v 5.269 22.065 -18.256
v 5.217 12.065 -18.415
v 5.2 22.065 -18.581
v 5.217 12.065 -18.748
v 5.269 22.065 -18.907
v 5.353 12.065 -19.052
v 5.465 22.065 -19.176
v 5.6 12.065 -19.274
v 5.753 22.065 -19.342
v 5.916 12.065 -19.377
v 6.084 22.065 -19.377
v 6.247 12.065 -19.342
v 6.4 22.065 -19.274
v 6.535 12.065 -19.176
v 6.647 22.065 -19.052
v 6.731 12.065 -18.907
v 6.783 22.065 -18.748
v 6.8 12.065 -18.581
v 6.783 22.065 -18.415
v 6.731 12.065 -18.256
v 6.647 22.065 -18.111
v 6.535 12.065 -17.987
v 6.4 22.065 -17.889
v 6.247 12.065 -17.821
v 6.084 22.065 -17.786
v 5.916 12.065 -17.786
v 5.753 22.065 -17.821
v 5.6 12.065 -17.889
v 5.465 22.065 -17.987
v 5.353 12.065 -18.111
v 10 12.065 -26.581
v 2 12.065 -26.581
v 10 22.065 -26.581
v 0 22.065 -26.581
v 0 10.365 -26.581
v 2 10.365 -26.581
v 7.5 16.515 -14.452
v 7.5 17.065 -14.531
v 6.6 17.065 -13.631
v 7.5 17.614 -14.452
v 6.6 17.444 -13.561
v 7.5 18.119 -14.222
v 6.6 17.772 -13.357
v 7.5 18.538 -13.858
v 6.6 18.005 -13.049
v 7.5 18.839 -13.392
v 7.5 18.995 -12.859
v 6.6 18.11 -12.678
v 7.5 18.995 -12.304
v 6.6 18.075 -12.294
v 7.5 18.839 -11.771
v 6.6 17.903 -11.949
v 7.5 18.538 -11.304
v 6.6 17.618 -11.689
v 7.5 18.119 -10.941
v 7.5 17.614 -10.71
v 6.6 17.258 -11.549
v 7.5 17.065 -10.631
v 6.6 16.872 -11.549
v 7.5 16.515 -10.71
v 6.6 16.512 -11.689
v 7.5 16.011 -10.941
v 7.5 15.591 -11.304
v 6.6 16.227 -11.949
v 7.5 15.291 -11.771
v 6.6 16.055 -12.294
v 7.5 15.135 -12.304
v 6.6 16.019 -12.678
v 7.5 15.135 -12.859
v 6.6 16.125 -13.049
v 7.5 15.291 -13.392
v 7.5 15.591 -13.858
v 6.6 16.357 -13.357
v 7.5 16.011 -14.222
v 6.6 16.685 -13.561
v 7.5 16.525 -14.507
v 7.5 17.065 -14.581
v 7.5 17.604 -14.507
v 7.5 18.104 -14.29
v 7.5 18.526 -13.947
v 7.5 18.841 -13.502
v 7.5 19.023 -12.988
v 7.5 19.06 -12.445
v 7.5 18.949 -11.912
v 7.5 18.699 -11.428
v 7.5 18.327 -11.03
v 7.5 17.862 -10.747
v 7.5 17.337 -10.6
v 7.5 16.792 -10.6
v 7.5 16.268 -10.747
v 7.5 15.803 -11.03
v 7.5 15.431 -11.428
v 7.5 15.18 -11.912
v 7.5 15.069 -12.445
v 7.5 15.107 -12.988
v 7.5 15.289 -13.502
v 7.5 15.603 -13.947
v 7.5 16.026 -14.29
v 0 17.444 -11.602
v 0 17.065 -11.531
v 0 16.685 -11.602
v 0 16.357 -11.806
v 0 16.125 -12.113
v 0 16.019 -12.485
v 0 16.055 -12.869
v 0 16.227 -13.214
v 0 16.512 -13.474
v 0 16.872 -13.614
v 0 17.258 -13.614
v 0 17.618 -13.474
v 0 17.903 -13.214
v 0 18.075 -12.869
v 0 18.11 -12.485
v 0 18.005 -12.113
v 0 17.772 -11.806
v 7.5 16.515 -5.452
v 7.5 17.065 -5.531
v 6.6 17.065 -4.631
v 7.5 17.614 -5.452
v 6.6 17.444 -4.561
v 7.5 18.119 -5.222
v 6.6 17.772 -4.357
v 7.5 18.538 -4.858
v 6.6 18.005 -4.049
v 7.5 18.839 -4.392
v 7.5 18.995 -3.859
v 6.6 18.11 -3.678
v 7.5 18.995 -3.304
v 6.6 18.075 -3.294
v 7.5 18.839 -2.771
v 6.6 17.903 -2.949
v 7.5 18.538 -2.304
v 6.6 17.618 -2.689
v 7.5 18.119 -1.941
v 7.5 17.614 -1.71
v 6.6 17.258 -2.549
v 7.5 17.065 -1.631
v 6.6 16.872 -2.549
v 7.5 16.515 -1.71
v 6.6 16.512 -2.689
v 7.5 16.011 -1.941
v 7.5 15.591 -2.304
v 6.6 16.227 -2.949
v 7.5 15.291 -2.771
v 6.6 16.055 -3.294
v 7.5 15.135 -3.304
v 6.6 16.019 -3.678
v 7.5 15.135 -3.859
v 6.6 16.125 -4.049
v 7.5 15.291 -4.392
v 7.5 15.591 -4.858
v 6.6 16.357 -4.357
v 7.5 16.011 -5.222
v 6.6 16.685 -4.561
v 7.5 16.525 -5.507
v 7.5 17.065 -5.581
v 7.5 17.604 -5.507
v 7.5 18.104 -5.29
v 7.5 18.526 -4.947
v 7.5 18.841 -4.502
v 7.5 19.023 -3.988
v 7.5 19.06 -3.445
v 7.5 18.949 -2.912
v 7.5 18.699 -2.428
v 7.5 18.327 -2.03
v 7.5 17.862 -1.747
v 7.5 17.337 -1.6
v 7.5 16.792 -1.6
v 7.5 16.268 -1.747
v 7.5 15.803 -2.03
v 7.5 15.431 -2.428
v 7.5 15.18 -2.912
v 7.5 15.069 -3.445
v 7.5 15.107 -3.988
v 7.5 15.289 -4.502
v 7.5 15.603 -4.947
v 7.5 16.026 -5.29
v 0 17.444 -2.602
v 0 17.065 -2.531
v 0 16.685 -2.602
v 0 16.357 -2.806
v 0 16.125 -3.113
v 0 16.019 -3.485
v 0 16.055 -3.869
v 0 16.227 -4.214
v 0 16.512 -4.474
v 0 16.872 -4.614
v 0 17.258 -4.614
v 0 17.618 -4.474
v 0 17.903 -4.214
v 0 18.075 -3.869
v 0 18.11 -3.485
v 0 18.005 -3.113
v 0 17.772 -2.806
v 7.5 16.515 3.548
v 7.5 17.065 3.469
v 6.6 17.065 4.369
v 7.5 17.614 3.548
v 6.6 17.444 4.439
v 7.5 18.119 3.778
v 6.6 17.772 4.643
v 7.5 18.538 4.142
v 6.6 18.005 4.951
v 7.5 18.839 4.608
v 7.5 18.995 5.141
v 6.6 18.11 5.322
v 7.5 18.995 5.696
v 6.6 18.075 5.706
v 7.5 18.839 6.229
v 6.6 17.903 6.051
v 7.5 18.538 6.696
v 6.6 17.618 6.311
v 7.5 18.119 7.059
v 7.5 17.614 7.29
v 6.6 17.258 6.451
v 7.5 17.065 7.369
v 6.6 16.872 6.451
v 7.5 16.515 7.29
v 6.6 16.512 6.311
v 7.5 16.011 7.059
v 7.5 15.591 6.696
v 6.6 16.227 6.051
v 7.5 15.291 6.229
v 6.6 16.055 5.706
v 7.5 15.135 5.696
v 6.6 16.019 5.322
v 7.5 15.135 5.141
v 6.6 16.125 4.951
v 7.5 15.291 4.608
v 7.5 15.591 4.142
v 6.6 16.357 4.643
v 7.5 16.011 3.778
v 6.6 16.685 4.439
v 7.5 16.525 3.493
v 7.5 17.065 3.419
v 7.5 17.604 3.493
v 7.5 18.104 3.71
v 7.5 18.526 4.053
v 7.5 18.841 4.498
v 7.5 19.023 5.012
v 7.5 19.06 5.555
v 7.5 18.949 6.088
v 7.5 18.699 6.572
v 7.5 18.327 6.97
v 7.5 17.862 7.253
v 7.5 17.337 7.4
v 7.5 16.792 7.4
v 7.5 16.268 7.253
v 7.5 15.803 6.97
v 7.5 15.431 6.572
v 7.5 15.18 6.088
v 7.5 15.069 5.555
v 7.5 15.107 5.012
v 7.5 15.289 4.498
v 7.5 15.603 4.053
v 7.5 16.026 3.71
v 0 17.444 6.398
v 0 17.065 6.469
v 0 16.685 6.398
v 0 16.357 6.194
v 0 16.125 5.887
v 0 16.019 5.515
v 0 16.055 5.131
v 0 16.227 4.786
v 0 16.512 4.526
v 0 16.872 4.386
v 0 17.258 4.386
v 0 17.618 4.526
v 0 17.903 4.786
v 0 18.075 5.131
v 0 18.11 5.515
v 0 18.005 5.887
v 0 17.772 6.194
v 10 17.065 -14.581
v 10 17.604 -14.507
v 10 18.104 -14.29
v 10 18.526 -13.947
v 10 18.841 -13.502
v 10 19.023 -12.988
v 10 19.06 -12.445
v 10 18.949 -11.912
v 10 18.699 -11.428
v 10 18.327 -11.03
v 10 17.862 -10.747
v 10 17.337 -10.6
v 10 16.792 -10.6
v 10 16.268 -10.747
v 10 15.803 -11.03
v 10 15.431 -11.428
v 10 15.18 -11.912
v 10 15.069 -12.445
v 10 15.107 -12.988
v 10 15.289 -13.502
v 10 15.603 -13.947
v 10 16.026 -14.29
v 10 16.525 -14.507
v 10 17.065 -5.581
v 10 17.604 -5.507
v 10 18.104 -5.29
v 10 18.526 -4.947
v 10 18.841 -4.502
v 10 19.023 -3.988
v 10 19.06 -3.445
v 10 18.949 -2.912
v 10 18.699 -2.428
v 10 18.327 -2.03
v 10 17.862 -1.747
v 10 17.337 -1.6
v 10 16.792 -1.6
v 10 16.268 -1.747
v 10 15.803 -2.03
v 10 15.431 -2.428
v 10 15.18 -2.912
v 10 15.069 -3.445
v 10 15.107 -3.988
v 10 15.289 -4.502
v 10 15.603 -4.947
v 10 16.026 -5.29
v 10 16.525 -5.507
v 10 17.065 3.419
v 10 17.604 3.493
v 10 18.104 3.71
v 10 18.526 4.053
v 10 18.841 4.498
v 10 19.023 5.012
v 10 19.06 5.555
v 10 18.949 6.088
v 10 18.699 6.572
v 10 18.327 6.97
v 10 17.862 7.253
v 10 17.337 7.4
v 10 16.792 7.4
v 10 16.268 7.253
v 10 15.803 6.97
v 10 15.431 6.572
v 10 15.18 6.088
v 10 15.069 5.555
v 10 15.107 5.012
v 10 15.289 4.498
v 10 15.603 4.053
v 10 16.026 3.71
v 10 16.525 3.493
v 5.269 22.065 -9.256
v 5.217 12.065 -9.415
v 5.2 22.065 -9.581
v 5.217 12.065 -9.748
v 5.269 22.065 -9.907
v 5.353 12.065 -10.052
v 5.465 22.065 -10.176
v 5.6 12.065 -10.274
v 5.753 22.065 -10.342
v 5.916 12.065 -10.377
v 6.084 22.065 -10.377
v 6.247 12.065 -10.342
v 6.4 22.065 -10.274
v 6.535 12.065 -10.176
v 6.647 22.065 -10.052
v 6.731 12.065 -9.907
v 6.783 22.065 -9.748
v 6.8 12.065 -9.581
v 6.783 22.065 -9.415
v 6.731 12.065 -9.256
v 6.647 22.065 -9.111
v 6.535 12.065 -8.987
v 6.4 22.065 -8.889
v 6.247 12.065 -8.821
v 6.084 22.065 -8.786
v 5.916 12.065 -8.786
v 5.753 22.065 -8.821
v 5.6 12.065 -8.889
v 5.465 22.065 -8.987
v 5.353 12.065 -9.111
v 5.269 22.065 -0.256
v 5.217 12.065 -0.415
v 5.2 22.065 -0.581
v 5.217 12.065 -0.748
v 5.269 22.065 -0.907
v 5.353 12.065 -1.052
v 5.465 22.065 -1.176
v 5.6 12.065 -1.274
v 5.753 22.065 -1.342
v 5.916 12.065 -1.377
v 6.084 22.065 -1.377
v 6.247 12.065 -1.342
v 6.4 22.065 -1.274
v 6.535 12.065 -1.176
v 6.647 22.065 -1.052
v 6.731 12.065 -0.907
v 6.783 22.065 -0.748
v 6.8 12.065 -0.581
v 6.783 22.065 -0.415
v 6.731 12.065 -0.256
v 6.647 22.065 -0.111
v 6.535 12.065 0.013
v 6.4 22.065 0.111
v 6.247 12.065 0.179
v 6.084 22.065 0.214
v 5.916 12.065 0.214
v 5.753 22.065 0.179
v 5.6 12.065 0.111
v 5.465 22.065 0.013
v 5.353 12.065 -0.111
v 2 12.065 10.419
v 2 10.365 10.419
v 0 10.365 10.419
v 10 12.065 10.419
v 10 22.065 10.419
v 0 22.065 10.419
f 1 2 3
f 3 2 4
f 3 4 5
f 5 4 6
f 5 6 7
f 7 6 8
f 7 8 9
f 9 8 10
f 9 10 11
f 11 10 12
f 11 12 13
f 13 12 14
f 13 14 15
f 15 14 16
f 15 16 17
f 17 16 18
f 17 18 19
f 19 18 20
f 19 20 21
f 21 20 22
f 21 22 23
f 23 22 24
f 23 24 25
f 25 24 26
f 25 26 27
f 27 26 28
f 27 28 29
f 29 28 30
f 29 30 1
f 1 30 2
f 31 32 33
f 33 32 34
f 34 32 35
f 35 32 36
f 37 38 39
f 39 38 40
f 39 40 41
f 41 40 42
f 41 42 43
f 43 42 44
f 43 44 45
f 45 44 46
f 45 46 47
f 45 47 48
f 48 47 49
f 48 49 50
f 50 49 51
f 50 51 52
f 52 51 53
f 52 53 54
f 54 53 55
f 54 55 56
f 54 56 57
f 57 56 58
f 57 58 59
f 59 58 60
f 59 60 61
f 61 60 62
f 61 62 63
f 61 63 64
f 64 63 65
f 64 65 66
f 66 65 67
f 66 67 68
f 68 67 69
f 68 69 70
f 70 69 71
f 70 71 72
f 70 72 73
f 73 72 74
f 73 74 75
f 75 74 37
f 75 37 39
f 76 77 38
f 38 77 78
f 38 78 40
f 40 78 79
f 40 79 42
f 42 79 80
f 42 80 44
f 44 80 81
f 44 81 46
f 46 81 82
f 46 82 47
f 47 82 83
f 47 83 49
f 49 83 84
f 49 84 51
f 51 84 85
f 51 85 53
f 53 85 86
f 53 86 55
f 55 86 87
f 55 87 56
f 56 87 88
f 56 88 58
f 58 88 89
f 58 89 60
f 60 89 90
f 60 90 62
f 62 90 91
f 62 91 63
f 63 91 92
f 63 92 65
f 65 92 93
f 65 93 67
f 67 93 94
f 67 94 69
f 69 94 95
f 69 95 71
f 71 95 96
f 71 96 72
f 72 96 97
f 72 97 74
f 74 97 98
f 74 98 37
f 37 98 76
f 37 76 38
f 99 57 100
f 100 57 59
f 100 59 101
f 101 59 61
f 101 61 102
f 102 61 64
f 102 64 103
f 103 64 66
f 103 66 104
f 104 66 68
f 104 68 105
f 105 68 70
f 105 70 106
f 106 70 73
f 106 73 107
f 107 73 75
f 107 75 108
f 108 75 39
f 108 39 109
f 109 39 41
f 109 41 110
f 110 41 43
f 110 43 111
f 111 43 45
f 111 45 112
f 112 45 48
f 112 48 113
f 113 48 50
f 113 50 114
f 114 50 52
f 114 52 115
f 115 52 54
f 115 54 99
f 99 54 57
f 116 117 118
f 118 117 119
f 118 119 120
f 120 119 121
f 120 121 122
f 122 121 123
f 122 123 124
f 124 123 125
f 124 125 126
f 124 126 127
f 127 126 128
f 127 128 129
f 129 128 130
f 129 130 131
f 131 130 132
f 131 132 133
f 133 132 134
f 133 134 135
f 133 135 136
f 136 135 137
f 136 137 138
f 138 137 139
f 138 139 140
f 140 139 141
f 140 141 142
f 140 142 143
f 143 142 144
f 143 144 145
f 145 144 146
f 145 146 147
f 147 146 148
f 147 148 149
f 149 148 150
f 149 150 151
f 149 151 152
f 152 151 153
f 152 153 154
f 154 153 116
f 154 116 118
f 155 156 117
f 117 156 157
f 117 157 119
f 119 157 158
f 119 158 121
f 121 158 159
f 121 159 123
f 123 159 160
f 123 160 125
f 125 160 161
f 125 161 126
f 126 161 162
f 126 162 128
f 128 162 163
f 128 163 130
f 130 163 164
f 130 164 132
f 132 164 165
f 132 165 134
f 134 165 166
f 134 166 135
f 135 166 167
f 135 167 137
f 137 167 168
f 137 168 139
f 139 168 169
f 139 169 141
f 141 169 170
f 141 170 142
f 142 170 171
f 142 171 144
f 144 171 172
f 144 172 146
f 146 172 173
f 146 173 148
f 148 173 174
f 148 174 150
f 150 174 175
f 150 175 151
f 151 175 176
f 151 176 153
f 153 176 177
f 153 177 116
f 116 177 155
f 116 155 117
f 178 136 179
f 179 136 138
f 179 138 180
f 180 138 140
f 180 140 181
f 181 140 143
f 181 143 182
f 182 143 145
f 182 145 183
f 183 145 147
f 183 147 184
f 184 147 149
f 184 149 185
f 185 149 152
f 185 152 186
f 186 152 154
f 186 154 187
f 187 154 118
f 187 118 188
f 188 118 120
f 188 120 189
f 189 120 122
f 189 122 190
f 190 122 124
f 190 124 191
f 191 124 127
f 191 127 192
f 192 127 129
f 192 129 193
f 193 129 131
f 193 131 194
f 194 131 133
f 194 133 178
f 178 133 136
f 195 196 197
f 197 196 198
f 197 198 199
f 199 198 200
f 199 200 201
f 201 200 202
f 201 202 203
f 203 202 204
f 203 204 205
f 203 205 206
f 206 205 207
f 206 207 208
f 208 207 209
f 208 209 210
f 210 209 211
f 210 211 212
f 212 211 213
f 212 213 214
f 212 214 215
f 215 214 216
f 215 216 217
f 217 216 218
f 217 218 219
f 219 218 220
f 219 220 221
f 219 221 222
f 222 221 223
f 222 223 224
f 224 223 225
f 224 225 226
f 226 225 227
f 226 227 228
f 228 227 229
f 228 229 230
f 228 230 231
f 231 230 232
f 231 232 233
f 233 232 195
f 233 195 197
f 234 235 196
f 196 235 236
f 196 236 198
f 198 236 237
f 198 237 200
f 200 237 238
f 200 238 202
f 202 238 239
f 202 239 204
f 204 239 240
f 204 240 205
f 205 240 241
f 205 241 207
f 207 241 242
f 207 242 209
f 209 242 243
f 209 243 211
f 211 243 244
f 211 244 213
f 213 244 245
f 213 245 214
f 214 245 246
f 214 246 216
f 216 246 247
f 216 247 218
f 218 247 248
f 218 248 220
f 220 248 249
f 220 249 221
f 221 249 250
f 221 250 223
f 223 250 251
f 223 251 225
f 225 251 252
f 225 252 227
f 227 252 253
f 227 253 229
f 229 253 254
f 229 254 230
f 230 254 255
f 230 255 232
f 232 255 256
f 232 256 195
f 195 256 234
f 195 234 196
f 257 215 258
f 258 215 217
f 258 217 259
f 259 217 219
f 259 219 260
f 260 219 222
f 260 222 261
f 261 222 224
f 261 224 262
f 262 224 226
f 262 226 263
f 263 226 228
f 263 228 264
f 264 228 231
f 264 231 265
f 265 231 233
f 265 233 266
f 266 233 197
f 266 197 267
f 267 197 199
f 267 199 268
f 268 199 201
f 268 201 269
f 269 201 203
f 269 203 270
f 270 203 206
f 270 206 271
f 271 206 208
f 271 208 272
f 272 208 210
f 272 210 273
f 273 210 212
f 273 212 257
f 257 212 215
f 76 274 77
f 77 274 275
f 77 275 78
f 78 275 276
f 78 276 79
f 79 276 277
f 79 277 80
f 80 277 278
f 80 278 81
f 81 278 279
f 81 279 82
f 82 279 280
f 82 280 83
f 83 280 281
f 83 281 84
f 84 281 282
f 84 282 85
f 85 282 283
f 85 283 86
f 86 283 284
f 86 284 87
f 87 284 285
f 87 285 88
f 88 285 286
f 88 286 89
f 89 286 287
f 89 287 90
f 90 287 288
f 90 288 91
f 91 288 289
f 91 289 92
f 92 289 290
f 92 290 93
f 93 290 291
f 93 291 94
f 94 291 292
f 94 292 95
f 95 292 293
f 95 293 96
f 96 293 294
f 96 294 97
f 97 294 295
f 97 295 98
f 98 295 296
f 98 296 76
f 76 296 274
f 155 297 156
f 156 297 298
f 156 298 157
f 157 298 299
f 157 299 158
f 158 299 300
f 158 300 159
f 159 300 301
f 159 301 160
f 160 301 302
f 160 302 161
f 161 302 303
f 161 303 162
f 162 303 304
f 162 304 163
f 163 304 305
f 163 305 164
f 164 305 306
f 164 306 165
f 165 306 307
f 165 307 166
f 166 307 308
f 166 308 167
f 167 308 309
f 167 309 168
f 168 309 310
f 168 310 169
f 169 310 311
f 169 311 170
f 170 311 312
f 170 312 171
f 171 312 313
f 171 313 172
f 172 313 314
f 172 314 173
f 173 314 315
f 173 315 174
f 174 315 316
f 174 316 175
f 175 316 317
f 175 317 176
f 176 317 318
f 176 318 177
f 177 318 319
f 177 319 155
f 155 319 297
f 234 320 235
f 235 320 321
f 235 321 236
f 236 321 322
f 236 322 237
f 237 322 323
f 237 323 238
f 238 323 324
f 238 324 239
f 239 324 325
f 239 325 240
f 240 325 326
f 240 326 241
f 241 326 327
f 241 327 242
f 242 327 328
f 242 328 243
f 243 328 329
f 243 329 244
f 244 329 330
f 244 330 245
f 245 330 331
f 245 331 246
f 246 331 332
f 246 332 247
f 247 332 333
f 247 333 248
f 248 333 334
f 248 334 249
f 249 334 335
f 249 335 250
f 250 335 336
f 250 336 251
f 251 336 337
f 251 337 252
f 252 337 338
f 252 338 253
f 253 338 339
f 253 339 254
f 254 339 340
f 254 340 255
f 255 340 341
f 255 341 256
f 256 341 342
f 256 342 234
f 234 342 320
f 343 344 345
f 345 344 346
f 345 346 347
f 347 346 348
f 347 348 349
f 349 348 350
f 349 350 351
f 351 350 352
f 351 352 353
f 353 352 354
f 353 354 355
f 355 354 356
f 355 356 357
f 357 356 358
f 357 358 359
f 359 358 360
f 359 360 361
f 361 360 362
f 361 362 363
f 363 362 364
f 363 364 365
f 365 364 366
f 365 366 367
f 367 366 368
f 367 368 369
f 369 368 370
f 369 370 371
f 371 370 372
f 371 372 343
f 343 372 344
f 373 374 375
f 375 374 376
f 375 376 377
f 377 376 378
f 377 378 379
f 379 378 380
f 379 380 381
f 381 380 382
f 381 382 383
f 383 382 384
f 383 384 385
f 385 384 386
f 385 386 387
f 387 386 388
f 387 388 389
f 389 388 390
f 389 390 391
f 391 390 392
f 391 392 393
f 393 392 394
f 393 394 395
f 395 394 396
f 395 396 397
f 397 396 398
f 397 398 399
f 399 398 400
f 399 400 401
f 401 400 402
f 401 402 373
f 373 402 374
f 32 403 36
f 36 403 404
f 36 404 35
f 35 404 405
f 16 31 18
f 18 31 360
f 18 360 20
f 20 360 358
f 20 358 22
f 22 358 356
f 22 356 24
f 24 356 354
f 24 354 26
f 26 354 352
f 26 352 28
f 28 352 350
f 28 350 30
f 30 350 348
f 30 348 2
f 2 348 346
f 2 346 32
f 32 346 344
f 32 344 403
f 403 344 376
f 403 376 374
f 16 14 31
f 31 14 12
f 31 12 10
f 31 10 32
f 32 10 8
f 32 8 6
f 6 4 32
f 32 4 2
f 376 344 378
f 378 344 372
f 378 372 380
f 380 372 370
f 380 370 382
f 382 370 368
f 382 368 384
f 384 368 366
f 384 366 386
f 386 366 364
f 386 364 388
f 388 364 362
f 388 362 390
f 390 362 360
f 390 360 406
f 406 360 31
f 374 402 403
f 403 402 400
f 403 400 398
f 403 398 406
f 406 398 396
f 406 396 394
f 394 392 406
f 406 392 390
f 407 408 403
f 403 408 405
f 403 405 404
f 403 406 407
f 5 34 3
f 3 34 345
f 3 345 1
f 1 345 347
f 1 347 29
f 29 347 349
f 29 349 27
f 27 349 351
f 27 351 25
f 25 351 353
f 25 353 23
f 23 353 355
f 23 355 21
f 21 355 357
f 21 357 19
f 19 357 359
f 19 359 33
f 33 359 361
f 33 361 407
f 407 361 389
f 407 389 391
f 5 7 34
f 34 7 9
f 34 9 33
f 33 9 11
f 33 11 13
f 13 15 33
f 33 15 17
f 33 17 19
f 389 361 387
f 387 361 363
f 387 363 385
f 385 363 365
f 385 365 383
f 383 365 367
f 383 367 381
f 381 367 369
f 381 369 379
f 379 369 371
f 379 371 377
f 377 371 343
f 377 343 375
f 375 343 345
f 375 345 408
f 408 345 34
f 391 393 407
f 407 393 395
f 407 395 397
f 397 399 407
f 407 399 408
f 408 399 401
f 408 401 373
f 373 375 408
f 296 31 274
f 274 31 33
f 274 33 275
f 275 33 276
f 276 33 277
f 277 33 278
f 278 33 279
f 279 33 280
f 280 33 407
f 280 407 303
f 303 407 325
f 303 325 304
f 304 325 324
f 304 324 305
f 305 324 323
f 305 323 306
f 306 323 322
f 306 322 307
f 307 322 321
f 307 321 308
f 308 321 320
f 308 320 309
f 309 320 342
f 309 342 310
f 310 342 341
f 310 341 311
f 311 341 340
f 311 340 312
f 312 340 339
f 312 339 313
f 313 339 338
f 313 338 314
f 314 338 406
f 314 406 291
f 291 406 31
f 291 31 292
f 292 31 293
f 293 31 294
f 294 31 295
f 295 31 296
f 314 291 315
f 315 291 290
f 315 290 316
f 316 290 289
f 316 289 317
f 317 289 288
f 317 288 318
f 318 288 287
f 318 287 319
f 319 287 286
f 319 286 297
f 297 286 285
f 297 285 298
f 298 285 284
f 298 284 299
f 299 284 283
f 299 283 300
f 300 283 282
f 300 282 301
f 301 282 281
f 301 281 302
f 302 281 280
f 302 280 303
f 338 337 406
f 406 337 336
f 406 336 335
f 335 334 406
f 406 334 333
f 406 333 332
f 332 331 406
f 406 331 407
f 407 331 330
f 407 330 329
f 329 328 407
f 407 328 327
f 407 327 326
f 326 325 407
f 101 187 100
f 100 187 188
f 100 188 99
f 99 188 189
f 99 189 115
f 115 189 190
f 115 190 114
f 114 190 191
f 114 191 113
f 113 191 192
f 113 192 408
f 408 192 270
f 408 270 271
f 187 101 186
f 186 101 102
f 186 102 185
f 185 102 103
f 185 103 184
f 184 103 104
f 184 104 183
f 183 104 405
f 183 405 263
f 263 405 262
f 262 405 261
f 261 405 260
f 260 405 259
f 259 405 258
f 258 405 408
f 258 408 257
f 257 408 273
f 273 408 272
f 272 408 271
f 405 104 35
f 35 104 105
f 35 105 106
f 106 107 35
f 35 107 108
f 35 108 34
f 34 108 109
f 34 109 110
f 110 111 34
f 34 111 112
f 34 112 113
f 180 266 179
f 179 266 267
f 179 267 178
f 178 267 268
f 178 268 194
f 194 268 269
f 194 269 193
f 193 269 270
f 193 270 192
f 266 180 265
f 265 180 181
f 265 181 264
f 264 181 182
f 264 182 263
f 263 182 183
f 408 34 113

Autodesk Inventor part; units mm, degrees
ref_plane "YZ Plane" through (0, 0, 0) normal (1, 0, 0) x (0, 1, 0)
ref_plane "XZ Plane" through (0, 0, 0) normal (0, 1, 0) x (-1, 0, 0)
ref_plane "XY Plane" through (0, 0, 0) normal (0, 0, 1) x (1, 0, 0)
sketch "Sketch1" plane through (0, 0, 0) normal (1, 0, 0) x (0, 1, 0)
  line L0 (12.0648, 10.4185) -> (22.0648, 10.4185)
  line L1 (22.0648, 10.4185) -> (22.0648, -17.5815)
  line L2 (22.0648, -17.5815) -> (12.0648, -17.5815)
  line L3 (12.0648, -17.5815) -> (12.0648, 10.4185)
  point P0 (0, 0)
  dimension "d0" = 28
  dimension "d1" = 10
extrude "Extrusion1" add sketch "Sketch1" along normal blind 10
sketch "Sketch2" plane through (0, 12.0648, -17.5815) normal (0, -1, 0) x (1, 0, 0)
  line L0 (0, 28) -> (10, 28) projected
  line L1 (0, 0) -> (10, 0) projected
  line L2 (0, 28) -> (2, 28)
  line L3 (2, 28) -> (2, 0)
  line L4 (2, 0) -> (0, 0)
  line L5 (0, 0) -> (0, 28)
  point P0 (0, 17.5815)
  dimension "d4" = 2
extrude "Extrusion2" add sketch "Sketch2" along normal blind 1.7
sketch "Sketch3" plane through (10, 12.0648, -17.5815) normal (0, -1, 0) x (1, 0, 0)
  circle A0 centre (-4, 8) radius 0.8
  circle A1 centre (-4, 17) radius 0.8
  line L0 (-8, 0) -> (0, 0) projected
  line L1 (-8, 0) -> (-8, 28) projected
  point P0 (-10, 17.5815)
  dimension "d7" = 1.6
  dimension "d8" = 1.6
  dimension "d9" = 8
  dimension "d10" = 9
  dimension "d11" = 4
  dimension "d12" = 4
extrude "Extrusion3" cut sketch "Sketch3" against normal through all
sketch "Sketch4" plane through (10, 0, 0) normal (1, 0, 0) x (0, 0, -1)
  circle A0 centre (-5.4185, 17.0648) radius 1.05
  circle A1 centre (3.5815, 17.0648) radius 1.05
  circle A2 centre (12.5815, 17.0648) radius 1.05
  line L0 (17.5815, 22.0648) -> (-10.4185, 22.0648) projected
  line L1 (17.5815, 12.0648) -> (17.5815, 22.0648) projected
  point P0 (0, 0)
  dimension "d15" = 2.1
  dimension "d16" = 2.1
  dimension "d17" = 2.1
  dimension "d18" = 5
  dimension "d19" = 5
  dimension "d20" = 5
  dimension "d21" = 5
  dimension "d22" = 9
  dimension "d23" = 9
extrude "Extrusion4" cut sketch "Sketch4" against normal through all
sketch "Sketch5" plane through (10, 0, 0) normal (1, 0, 0) x (0, 0, -1)
  circle A0 centre (-5.4185, 17.0648) radius 1.05 projected
  circle A1 centre (-5.4185, 17.0648) radius 2
  circle A2 centre (3.5815, 17.0648) radius 1.05 projected
  circle A3 centre (3.5815, 17.0648) radius 2
  circle A4 centre (12.5815, 17.0648) radius 1.05 projected
  circle A5 centre (12.5815, 17.0648) radius 2
  point P0 (0, 0)
  dimension "d26" = 4
  dimension "d27" = 4
  dimension "d28" = 4
extrude "Extrusion5" cut sketch "Sketch5" against normal blind 2.5
chamfer "Chamfer1" distance 0.9 angle 45 3 edges at (7.5, 17.0648, 6.4685) (7.5, 17.0648, -2.5315) (7.5, 17.0648, -11.5315)
sketch "Sketch6" plane through (10, 22.0648, -17.5815) normal (0, 0, -1) x (-1, 0, 0)
  line L0 (0, 0) -> (0, -10) projected
  line L1 (0, -10) -> (0, 0)
  line L2 (0, 0) -> (10, 0)
  line L3 (8, -11.7) -> (10, -11.7) projected
  line L4 (10, 0) -> (10, -11.7)
  line L5 (8, -11.7) -> (8, -10)
  line L6 (8, -10) -> (0, -10)
  point P0 (10, -22.0648)
extrude "Extrusion6" add sketch "Sketch6" along normal blind 9
sketch "Sketch7" plane through (2, 12.0648, 10.4185) normal (0, -1, 0) x (1, 0, 0)
  circle A0 centre (4, -29) radius 0.8
  line L0 (0, 0) -> (0, -37) projected
  line L1 (8, -37) -> (0, -37) projected
  point P0 (-2, -10.4185)
  dimension "d39" = 1.6
  dimension "d40" = 4
  dimension "d41" = 8
extrude "Extrusion7" cut sketch "Sketch7" against normal through all
properties part number "probe_mount"
